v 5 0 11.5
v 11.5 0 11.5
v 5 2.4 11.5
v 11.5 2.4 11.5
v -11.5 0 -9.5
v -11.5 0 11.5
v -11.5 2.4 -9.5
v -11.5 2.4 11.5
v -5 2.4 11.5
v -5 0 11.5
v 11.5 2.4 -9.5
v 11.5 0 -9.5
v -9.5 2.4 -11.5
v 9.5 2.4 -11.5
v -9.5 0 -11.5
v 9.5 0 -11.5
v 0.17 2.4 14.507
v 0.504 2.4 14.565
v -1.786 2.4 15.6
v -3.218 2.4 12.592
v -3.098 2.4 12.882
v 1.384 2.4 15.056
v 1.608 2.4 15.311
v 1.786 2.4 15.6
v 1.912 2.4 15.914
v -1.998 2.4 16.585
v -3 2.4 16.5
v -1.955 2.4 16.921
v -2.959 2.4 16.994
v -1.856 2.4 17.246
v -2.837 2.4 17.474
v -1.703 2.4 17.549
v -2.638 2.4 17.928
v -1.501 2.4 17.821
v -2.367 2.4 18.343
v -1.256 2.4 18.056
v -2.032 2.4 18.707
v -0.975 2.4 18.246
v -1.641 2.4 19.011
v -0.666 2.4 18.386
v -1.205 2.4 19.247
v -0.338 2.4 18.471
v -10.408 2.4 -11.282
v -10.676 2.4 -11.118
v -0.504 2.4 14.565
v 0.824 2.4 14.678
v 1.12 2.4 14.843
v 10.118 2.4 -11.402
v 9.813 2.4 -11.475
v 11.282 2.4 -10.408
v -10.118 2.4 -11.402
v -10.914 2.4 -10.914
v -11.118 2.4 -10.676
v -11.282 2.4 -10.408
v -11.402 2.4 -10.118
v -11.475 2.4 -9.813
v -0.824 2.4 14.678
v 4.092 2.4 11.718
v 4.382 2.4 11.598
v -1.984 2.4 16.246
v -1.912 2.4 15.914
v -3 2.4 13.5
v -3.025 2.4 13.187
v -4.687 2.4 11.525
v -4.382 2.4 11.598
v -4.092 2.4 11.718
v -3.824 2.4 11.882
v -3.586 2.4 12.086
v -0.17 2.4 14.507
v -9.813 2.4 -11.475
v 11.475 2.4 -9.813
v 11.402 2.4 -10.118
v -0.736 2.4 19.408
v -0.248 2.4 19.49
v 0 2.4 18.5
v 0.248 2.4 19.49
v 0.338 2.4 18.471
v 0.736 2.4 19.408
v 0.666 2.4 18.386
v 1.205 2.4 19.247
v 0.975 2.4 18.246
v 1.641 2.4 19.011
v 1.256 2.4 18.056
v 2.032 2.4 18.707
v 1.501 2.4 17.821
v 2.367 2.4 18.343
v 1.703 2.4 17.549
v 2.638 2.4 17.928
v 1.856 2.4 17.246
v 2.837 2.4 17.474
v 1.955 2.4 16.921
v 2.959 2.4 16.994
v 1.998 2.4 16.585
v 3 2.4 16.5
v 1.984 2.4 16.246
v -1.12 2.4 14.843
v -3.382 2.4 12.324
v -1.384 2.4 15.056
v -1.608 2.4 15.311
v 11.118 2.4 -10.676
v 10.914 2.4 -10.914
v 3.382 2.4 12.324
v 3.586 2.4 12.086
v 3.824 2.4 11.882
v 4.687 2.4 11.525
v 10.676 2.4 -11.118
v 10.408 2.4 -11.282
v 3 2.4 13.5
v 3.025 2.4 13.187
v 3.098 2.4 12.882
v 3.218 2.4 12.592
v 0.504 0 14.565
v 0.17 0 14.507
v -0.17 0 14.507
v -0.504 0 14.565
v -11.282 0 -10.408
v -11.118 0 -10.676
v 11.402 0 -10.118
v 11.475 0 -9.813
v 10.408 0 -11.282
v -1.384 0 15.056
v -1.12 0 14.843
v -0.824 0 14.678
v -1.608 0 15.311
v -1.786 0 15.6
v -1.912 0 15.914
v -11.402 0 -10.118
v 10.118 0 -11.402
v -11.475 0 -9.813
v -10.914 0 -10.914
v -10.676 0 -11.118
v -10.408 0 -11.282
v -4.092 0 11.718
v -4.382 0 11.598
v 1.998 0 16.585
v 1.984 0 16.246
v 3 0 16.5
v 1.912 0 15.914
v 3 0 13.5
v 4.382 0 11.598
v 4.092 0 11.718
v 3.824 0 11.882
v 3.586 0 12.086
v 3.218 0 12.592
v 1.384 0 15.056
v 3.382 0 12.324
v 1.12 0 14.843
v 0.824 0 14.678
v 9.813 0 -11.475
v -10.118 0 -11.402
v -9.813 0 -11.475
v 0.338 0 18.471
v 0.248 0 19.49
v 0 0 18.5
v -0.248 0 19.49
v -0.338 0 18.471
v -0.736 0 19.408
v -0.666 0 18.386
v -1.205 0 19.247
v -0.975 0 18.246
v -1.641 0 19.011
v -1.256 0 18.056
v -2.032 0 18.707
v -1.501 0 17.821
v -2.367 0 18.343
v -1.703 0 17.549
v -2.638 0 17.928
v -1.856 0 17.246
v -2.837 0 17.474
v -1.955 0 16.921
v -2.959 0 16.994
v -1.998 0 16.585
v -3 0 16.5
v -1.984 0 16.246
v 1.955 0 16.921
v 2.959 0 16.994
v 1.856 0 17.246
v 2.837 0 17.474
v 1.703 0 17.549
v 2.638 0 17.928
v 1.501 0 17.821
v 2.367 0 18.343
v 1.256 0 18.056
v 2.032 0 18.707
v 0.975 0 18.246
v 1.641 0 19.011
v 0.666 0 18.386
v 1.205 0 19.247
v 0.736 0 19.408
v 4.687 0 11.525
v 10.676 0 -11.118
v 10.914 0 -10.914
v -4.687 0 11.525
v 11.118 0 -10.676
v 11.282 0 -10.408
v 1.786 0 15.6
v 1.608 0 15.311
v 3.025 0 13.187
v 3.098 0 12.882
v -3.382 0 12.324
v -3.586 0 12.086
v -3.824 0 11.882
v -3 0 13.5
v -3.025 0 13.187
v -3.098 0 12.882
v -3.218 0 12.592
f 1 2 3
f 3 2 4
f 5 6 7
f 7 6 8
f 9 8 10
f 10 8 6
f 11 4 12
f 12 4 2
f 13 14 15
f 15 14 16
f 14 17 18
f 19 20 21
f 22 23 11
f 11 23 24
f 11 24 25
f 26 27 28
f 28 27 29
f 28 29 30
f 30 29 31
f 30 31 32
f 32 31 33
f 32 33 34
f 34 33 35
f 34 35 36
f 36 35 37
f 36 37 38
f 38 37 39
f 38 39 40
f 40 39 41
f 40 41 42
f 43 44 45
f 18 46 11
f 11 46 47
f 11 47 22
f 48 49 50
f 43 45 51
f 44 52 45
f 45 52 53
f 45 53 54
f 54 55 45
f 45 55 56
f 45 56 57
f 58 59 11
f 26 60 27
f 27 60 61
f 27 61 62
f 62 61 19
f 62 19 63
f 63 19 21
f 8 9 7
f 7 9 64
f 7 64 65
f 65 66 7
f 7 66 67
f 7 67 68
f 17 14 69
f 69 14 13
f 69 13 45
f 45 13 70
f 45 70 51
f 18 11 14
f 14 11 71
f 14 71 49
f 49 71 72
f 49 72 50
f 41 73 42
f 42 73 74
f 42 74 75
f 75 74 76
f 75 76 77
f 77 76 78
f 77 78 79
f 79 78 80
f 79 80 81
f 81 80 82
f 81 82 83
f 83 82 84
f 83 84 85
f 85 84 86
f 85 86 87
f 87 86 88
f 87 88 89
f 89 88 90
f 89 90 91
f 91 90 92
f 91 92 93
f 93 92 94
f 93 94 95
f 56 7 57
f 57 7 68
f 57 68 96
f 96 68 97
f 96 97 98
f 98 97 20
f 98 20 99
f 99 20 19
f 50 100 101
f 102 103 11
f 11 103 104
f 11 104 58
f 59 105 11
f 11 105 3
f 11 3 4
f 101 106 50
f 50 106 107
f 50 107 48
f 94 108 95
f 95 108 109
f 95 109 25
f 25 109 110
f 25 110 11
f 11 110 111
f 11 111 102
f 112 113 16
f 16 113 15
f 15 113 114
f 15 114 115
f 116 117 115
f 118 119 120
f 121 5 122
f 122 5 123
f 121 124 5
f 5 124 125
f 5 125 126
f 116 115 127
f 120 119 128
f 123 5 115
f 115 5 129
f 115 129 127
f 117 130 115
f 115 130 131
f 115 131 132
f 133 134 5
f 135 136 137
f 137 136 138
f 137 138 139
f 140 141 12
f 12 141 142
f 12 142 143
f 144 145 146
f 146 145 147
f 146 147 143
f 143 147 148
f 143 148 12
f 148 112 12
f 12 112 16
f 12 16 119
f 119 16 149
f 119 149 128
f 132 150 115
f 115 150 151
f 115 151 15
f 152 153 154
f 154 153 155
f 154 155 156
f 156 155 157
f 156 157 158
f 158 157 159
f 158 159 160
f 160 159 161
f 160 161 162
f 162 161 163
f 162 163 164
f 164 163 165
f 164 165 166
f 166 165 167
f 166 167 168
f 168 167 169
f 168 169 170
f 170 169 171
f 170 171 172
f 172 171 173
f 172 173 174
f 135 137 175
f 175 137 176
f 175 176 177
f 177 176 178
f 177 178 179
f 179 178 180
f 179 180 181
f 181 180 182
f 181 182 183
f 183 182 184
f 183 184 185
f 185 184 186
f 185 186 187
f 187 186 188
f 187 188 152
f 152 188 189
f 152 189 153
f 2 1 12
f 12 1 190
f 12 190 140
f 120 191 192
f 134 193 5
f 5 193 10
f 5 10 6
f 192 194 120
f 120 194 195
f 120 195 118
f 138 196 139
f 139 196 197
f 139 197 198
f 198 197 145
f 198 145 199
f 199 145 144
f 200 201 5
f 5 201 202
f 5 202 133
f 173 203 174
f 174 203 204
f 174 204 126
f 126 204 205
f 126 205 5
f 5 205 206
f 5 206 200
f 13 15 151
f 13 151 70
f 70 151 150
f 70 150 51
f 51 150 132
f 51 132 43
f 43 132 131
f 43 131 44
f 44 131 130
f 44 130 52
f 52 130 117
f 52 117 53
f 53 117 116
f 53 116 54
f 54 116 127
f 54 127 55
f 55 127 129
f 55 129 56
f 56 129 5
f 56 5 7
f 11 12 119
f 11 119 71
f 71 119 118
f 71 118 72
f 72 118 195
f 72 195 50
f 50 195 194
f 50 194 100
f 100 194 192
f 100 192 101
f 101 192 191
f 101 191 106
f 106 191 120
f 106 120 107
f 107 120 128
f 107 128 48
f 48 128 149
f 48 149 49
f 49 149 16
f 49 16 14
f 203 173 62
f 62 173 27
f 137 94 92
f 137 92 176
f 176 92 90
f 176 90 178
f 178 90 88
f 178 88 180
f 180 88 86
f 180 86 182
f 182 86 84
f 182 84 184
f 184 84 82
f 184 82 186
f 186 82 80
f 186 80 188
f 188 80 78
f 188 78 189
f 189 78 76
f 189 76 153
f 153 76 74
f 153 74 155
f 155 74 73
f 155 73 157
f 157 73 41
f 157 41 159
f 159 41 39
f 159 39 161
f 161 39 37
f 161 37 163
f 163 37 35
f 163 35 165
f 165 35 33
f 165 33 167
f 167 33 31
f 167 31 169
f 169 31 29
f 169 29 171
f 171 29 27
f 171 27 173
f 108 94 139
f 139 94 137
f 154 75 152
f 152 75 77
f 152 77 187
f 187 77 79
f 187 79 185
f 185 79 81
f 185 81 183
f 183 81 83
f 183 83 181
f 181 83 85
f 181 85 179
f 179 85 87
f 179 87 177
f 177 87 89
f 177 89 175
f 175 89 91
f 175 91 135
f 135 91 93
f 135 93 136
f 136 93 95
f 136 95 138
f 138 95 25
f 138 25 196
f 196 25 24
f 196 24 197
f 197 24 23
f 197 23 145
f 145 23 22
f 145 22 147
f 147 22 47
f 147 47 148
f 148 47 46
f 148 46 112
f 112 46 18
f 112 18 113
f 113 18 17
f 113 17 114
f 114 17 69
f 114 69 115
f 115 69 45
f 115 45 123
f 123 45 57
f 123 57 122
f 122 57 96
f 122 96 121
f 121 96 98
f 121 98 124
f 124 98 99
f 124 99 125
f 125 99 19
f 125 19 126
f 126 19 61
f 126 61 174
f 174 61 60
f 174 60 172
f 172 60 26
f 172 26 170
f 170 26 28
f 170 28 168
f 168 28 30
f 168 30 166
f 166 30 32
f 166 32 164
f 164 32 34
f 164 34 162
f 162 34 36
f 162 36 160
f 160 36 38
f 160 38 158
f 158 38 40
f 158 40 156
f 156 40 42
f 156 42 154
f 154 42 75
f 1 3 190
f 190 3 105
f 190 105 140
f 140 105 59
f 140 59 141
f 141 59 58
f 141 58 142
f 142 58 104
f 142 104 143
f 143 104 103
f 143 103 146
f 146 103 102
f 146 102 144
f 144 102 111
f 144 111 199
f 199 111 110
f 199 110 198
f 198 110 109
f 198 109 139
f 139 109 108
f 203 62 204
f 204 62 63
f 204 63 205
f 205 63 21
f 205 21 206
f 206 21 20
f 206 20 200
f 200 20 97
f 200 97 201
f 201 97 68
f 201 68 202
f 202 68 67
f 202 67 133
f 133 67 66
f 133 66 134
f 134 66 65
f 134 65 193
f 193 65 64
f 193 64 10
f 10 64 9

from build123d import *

# Parameters (mm, degrees)
SKETCH1_W           = 23
SKETCH1_H           = 23
BOSS_EXTRUDE1_DEPTH = 2.4
FILLET1_R           = 2
SKETCH2_R           = 2
BOSS_EXTRUDE2_DEPTH = 2.4
FILLET2_R           = 2


with BuildPart() as part:
    # Sketch1 → Boss-Extrude1 (new body)
    with BuildSketch(Plane(origin=(0, 0, 0), x_dir=(1, 0, 0), z_dir=(0, 1, 0))):
        Rectangle(SKETCH1_W, SKETCH1_H)
    extrude(amount=BOSS_EXTRUDE1_DEPTH)

    # Fillet1
    fillet1_edges = [part.edges().sort_by_distance(p)[0] for p in [
        (-11.5, 1.2, -11.5),
        (11.5, 1.2, -11.5),
    ]]
    fillet(fillet1_edges, radius=FILLET1_R)

    # Sketch2 → Boss-Extrude2 (add)
    with BuildSketch(Plane(origin=(0, 2.4, 0), x_dir=(1, 0, 0), z_dir=(0, 1, 0))):
        with BuildLine():
            Line((-3, -11.5), (-3, -16.5))
            ThreePointArc((-3, -16.5), (0, -19.5), (3, -16.5))
            Line((3, -16.5), (3, -11.5))
            Line((3, -11.5), (-3, -11.5))
        make_face()
        with Locations((0, -16.5)):
            Circle(SKETCH2_R, mode=Mode.SUBTRACT)
    extrude(amount=-BOSS_EXTRUDE2_DEPTH)

    # Fillet2
    fillet2_edges = [part.edges().sort_by_distance(p)[0] for p in [
        (3, 1.2, 11.5),
        (-3, 1.2, 11.5),
    ]]
    fillet(fillet2_edges, radius=FILLET2_R)


solid = part.part
